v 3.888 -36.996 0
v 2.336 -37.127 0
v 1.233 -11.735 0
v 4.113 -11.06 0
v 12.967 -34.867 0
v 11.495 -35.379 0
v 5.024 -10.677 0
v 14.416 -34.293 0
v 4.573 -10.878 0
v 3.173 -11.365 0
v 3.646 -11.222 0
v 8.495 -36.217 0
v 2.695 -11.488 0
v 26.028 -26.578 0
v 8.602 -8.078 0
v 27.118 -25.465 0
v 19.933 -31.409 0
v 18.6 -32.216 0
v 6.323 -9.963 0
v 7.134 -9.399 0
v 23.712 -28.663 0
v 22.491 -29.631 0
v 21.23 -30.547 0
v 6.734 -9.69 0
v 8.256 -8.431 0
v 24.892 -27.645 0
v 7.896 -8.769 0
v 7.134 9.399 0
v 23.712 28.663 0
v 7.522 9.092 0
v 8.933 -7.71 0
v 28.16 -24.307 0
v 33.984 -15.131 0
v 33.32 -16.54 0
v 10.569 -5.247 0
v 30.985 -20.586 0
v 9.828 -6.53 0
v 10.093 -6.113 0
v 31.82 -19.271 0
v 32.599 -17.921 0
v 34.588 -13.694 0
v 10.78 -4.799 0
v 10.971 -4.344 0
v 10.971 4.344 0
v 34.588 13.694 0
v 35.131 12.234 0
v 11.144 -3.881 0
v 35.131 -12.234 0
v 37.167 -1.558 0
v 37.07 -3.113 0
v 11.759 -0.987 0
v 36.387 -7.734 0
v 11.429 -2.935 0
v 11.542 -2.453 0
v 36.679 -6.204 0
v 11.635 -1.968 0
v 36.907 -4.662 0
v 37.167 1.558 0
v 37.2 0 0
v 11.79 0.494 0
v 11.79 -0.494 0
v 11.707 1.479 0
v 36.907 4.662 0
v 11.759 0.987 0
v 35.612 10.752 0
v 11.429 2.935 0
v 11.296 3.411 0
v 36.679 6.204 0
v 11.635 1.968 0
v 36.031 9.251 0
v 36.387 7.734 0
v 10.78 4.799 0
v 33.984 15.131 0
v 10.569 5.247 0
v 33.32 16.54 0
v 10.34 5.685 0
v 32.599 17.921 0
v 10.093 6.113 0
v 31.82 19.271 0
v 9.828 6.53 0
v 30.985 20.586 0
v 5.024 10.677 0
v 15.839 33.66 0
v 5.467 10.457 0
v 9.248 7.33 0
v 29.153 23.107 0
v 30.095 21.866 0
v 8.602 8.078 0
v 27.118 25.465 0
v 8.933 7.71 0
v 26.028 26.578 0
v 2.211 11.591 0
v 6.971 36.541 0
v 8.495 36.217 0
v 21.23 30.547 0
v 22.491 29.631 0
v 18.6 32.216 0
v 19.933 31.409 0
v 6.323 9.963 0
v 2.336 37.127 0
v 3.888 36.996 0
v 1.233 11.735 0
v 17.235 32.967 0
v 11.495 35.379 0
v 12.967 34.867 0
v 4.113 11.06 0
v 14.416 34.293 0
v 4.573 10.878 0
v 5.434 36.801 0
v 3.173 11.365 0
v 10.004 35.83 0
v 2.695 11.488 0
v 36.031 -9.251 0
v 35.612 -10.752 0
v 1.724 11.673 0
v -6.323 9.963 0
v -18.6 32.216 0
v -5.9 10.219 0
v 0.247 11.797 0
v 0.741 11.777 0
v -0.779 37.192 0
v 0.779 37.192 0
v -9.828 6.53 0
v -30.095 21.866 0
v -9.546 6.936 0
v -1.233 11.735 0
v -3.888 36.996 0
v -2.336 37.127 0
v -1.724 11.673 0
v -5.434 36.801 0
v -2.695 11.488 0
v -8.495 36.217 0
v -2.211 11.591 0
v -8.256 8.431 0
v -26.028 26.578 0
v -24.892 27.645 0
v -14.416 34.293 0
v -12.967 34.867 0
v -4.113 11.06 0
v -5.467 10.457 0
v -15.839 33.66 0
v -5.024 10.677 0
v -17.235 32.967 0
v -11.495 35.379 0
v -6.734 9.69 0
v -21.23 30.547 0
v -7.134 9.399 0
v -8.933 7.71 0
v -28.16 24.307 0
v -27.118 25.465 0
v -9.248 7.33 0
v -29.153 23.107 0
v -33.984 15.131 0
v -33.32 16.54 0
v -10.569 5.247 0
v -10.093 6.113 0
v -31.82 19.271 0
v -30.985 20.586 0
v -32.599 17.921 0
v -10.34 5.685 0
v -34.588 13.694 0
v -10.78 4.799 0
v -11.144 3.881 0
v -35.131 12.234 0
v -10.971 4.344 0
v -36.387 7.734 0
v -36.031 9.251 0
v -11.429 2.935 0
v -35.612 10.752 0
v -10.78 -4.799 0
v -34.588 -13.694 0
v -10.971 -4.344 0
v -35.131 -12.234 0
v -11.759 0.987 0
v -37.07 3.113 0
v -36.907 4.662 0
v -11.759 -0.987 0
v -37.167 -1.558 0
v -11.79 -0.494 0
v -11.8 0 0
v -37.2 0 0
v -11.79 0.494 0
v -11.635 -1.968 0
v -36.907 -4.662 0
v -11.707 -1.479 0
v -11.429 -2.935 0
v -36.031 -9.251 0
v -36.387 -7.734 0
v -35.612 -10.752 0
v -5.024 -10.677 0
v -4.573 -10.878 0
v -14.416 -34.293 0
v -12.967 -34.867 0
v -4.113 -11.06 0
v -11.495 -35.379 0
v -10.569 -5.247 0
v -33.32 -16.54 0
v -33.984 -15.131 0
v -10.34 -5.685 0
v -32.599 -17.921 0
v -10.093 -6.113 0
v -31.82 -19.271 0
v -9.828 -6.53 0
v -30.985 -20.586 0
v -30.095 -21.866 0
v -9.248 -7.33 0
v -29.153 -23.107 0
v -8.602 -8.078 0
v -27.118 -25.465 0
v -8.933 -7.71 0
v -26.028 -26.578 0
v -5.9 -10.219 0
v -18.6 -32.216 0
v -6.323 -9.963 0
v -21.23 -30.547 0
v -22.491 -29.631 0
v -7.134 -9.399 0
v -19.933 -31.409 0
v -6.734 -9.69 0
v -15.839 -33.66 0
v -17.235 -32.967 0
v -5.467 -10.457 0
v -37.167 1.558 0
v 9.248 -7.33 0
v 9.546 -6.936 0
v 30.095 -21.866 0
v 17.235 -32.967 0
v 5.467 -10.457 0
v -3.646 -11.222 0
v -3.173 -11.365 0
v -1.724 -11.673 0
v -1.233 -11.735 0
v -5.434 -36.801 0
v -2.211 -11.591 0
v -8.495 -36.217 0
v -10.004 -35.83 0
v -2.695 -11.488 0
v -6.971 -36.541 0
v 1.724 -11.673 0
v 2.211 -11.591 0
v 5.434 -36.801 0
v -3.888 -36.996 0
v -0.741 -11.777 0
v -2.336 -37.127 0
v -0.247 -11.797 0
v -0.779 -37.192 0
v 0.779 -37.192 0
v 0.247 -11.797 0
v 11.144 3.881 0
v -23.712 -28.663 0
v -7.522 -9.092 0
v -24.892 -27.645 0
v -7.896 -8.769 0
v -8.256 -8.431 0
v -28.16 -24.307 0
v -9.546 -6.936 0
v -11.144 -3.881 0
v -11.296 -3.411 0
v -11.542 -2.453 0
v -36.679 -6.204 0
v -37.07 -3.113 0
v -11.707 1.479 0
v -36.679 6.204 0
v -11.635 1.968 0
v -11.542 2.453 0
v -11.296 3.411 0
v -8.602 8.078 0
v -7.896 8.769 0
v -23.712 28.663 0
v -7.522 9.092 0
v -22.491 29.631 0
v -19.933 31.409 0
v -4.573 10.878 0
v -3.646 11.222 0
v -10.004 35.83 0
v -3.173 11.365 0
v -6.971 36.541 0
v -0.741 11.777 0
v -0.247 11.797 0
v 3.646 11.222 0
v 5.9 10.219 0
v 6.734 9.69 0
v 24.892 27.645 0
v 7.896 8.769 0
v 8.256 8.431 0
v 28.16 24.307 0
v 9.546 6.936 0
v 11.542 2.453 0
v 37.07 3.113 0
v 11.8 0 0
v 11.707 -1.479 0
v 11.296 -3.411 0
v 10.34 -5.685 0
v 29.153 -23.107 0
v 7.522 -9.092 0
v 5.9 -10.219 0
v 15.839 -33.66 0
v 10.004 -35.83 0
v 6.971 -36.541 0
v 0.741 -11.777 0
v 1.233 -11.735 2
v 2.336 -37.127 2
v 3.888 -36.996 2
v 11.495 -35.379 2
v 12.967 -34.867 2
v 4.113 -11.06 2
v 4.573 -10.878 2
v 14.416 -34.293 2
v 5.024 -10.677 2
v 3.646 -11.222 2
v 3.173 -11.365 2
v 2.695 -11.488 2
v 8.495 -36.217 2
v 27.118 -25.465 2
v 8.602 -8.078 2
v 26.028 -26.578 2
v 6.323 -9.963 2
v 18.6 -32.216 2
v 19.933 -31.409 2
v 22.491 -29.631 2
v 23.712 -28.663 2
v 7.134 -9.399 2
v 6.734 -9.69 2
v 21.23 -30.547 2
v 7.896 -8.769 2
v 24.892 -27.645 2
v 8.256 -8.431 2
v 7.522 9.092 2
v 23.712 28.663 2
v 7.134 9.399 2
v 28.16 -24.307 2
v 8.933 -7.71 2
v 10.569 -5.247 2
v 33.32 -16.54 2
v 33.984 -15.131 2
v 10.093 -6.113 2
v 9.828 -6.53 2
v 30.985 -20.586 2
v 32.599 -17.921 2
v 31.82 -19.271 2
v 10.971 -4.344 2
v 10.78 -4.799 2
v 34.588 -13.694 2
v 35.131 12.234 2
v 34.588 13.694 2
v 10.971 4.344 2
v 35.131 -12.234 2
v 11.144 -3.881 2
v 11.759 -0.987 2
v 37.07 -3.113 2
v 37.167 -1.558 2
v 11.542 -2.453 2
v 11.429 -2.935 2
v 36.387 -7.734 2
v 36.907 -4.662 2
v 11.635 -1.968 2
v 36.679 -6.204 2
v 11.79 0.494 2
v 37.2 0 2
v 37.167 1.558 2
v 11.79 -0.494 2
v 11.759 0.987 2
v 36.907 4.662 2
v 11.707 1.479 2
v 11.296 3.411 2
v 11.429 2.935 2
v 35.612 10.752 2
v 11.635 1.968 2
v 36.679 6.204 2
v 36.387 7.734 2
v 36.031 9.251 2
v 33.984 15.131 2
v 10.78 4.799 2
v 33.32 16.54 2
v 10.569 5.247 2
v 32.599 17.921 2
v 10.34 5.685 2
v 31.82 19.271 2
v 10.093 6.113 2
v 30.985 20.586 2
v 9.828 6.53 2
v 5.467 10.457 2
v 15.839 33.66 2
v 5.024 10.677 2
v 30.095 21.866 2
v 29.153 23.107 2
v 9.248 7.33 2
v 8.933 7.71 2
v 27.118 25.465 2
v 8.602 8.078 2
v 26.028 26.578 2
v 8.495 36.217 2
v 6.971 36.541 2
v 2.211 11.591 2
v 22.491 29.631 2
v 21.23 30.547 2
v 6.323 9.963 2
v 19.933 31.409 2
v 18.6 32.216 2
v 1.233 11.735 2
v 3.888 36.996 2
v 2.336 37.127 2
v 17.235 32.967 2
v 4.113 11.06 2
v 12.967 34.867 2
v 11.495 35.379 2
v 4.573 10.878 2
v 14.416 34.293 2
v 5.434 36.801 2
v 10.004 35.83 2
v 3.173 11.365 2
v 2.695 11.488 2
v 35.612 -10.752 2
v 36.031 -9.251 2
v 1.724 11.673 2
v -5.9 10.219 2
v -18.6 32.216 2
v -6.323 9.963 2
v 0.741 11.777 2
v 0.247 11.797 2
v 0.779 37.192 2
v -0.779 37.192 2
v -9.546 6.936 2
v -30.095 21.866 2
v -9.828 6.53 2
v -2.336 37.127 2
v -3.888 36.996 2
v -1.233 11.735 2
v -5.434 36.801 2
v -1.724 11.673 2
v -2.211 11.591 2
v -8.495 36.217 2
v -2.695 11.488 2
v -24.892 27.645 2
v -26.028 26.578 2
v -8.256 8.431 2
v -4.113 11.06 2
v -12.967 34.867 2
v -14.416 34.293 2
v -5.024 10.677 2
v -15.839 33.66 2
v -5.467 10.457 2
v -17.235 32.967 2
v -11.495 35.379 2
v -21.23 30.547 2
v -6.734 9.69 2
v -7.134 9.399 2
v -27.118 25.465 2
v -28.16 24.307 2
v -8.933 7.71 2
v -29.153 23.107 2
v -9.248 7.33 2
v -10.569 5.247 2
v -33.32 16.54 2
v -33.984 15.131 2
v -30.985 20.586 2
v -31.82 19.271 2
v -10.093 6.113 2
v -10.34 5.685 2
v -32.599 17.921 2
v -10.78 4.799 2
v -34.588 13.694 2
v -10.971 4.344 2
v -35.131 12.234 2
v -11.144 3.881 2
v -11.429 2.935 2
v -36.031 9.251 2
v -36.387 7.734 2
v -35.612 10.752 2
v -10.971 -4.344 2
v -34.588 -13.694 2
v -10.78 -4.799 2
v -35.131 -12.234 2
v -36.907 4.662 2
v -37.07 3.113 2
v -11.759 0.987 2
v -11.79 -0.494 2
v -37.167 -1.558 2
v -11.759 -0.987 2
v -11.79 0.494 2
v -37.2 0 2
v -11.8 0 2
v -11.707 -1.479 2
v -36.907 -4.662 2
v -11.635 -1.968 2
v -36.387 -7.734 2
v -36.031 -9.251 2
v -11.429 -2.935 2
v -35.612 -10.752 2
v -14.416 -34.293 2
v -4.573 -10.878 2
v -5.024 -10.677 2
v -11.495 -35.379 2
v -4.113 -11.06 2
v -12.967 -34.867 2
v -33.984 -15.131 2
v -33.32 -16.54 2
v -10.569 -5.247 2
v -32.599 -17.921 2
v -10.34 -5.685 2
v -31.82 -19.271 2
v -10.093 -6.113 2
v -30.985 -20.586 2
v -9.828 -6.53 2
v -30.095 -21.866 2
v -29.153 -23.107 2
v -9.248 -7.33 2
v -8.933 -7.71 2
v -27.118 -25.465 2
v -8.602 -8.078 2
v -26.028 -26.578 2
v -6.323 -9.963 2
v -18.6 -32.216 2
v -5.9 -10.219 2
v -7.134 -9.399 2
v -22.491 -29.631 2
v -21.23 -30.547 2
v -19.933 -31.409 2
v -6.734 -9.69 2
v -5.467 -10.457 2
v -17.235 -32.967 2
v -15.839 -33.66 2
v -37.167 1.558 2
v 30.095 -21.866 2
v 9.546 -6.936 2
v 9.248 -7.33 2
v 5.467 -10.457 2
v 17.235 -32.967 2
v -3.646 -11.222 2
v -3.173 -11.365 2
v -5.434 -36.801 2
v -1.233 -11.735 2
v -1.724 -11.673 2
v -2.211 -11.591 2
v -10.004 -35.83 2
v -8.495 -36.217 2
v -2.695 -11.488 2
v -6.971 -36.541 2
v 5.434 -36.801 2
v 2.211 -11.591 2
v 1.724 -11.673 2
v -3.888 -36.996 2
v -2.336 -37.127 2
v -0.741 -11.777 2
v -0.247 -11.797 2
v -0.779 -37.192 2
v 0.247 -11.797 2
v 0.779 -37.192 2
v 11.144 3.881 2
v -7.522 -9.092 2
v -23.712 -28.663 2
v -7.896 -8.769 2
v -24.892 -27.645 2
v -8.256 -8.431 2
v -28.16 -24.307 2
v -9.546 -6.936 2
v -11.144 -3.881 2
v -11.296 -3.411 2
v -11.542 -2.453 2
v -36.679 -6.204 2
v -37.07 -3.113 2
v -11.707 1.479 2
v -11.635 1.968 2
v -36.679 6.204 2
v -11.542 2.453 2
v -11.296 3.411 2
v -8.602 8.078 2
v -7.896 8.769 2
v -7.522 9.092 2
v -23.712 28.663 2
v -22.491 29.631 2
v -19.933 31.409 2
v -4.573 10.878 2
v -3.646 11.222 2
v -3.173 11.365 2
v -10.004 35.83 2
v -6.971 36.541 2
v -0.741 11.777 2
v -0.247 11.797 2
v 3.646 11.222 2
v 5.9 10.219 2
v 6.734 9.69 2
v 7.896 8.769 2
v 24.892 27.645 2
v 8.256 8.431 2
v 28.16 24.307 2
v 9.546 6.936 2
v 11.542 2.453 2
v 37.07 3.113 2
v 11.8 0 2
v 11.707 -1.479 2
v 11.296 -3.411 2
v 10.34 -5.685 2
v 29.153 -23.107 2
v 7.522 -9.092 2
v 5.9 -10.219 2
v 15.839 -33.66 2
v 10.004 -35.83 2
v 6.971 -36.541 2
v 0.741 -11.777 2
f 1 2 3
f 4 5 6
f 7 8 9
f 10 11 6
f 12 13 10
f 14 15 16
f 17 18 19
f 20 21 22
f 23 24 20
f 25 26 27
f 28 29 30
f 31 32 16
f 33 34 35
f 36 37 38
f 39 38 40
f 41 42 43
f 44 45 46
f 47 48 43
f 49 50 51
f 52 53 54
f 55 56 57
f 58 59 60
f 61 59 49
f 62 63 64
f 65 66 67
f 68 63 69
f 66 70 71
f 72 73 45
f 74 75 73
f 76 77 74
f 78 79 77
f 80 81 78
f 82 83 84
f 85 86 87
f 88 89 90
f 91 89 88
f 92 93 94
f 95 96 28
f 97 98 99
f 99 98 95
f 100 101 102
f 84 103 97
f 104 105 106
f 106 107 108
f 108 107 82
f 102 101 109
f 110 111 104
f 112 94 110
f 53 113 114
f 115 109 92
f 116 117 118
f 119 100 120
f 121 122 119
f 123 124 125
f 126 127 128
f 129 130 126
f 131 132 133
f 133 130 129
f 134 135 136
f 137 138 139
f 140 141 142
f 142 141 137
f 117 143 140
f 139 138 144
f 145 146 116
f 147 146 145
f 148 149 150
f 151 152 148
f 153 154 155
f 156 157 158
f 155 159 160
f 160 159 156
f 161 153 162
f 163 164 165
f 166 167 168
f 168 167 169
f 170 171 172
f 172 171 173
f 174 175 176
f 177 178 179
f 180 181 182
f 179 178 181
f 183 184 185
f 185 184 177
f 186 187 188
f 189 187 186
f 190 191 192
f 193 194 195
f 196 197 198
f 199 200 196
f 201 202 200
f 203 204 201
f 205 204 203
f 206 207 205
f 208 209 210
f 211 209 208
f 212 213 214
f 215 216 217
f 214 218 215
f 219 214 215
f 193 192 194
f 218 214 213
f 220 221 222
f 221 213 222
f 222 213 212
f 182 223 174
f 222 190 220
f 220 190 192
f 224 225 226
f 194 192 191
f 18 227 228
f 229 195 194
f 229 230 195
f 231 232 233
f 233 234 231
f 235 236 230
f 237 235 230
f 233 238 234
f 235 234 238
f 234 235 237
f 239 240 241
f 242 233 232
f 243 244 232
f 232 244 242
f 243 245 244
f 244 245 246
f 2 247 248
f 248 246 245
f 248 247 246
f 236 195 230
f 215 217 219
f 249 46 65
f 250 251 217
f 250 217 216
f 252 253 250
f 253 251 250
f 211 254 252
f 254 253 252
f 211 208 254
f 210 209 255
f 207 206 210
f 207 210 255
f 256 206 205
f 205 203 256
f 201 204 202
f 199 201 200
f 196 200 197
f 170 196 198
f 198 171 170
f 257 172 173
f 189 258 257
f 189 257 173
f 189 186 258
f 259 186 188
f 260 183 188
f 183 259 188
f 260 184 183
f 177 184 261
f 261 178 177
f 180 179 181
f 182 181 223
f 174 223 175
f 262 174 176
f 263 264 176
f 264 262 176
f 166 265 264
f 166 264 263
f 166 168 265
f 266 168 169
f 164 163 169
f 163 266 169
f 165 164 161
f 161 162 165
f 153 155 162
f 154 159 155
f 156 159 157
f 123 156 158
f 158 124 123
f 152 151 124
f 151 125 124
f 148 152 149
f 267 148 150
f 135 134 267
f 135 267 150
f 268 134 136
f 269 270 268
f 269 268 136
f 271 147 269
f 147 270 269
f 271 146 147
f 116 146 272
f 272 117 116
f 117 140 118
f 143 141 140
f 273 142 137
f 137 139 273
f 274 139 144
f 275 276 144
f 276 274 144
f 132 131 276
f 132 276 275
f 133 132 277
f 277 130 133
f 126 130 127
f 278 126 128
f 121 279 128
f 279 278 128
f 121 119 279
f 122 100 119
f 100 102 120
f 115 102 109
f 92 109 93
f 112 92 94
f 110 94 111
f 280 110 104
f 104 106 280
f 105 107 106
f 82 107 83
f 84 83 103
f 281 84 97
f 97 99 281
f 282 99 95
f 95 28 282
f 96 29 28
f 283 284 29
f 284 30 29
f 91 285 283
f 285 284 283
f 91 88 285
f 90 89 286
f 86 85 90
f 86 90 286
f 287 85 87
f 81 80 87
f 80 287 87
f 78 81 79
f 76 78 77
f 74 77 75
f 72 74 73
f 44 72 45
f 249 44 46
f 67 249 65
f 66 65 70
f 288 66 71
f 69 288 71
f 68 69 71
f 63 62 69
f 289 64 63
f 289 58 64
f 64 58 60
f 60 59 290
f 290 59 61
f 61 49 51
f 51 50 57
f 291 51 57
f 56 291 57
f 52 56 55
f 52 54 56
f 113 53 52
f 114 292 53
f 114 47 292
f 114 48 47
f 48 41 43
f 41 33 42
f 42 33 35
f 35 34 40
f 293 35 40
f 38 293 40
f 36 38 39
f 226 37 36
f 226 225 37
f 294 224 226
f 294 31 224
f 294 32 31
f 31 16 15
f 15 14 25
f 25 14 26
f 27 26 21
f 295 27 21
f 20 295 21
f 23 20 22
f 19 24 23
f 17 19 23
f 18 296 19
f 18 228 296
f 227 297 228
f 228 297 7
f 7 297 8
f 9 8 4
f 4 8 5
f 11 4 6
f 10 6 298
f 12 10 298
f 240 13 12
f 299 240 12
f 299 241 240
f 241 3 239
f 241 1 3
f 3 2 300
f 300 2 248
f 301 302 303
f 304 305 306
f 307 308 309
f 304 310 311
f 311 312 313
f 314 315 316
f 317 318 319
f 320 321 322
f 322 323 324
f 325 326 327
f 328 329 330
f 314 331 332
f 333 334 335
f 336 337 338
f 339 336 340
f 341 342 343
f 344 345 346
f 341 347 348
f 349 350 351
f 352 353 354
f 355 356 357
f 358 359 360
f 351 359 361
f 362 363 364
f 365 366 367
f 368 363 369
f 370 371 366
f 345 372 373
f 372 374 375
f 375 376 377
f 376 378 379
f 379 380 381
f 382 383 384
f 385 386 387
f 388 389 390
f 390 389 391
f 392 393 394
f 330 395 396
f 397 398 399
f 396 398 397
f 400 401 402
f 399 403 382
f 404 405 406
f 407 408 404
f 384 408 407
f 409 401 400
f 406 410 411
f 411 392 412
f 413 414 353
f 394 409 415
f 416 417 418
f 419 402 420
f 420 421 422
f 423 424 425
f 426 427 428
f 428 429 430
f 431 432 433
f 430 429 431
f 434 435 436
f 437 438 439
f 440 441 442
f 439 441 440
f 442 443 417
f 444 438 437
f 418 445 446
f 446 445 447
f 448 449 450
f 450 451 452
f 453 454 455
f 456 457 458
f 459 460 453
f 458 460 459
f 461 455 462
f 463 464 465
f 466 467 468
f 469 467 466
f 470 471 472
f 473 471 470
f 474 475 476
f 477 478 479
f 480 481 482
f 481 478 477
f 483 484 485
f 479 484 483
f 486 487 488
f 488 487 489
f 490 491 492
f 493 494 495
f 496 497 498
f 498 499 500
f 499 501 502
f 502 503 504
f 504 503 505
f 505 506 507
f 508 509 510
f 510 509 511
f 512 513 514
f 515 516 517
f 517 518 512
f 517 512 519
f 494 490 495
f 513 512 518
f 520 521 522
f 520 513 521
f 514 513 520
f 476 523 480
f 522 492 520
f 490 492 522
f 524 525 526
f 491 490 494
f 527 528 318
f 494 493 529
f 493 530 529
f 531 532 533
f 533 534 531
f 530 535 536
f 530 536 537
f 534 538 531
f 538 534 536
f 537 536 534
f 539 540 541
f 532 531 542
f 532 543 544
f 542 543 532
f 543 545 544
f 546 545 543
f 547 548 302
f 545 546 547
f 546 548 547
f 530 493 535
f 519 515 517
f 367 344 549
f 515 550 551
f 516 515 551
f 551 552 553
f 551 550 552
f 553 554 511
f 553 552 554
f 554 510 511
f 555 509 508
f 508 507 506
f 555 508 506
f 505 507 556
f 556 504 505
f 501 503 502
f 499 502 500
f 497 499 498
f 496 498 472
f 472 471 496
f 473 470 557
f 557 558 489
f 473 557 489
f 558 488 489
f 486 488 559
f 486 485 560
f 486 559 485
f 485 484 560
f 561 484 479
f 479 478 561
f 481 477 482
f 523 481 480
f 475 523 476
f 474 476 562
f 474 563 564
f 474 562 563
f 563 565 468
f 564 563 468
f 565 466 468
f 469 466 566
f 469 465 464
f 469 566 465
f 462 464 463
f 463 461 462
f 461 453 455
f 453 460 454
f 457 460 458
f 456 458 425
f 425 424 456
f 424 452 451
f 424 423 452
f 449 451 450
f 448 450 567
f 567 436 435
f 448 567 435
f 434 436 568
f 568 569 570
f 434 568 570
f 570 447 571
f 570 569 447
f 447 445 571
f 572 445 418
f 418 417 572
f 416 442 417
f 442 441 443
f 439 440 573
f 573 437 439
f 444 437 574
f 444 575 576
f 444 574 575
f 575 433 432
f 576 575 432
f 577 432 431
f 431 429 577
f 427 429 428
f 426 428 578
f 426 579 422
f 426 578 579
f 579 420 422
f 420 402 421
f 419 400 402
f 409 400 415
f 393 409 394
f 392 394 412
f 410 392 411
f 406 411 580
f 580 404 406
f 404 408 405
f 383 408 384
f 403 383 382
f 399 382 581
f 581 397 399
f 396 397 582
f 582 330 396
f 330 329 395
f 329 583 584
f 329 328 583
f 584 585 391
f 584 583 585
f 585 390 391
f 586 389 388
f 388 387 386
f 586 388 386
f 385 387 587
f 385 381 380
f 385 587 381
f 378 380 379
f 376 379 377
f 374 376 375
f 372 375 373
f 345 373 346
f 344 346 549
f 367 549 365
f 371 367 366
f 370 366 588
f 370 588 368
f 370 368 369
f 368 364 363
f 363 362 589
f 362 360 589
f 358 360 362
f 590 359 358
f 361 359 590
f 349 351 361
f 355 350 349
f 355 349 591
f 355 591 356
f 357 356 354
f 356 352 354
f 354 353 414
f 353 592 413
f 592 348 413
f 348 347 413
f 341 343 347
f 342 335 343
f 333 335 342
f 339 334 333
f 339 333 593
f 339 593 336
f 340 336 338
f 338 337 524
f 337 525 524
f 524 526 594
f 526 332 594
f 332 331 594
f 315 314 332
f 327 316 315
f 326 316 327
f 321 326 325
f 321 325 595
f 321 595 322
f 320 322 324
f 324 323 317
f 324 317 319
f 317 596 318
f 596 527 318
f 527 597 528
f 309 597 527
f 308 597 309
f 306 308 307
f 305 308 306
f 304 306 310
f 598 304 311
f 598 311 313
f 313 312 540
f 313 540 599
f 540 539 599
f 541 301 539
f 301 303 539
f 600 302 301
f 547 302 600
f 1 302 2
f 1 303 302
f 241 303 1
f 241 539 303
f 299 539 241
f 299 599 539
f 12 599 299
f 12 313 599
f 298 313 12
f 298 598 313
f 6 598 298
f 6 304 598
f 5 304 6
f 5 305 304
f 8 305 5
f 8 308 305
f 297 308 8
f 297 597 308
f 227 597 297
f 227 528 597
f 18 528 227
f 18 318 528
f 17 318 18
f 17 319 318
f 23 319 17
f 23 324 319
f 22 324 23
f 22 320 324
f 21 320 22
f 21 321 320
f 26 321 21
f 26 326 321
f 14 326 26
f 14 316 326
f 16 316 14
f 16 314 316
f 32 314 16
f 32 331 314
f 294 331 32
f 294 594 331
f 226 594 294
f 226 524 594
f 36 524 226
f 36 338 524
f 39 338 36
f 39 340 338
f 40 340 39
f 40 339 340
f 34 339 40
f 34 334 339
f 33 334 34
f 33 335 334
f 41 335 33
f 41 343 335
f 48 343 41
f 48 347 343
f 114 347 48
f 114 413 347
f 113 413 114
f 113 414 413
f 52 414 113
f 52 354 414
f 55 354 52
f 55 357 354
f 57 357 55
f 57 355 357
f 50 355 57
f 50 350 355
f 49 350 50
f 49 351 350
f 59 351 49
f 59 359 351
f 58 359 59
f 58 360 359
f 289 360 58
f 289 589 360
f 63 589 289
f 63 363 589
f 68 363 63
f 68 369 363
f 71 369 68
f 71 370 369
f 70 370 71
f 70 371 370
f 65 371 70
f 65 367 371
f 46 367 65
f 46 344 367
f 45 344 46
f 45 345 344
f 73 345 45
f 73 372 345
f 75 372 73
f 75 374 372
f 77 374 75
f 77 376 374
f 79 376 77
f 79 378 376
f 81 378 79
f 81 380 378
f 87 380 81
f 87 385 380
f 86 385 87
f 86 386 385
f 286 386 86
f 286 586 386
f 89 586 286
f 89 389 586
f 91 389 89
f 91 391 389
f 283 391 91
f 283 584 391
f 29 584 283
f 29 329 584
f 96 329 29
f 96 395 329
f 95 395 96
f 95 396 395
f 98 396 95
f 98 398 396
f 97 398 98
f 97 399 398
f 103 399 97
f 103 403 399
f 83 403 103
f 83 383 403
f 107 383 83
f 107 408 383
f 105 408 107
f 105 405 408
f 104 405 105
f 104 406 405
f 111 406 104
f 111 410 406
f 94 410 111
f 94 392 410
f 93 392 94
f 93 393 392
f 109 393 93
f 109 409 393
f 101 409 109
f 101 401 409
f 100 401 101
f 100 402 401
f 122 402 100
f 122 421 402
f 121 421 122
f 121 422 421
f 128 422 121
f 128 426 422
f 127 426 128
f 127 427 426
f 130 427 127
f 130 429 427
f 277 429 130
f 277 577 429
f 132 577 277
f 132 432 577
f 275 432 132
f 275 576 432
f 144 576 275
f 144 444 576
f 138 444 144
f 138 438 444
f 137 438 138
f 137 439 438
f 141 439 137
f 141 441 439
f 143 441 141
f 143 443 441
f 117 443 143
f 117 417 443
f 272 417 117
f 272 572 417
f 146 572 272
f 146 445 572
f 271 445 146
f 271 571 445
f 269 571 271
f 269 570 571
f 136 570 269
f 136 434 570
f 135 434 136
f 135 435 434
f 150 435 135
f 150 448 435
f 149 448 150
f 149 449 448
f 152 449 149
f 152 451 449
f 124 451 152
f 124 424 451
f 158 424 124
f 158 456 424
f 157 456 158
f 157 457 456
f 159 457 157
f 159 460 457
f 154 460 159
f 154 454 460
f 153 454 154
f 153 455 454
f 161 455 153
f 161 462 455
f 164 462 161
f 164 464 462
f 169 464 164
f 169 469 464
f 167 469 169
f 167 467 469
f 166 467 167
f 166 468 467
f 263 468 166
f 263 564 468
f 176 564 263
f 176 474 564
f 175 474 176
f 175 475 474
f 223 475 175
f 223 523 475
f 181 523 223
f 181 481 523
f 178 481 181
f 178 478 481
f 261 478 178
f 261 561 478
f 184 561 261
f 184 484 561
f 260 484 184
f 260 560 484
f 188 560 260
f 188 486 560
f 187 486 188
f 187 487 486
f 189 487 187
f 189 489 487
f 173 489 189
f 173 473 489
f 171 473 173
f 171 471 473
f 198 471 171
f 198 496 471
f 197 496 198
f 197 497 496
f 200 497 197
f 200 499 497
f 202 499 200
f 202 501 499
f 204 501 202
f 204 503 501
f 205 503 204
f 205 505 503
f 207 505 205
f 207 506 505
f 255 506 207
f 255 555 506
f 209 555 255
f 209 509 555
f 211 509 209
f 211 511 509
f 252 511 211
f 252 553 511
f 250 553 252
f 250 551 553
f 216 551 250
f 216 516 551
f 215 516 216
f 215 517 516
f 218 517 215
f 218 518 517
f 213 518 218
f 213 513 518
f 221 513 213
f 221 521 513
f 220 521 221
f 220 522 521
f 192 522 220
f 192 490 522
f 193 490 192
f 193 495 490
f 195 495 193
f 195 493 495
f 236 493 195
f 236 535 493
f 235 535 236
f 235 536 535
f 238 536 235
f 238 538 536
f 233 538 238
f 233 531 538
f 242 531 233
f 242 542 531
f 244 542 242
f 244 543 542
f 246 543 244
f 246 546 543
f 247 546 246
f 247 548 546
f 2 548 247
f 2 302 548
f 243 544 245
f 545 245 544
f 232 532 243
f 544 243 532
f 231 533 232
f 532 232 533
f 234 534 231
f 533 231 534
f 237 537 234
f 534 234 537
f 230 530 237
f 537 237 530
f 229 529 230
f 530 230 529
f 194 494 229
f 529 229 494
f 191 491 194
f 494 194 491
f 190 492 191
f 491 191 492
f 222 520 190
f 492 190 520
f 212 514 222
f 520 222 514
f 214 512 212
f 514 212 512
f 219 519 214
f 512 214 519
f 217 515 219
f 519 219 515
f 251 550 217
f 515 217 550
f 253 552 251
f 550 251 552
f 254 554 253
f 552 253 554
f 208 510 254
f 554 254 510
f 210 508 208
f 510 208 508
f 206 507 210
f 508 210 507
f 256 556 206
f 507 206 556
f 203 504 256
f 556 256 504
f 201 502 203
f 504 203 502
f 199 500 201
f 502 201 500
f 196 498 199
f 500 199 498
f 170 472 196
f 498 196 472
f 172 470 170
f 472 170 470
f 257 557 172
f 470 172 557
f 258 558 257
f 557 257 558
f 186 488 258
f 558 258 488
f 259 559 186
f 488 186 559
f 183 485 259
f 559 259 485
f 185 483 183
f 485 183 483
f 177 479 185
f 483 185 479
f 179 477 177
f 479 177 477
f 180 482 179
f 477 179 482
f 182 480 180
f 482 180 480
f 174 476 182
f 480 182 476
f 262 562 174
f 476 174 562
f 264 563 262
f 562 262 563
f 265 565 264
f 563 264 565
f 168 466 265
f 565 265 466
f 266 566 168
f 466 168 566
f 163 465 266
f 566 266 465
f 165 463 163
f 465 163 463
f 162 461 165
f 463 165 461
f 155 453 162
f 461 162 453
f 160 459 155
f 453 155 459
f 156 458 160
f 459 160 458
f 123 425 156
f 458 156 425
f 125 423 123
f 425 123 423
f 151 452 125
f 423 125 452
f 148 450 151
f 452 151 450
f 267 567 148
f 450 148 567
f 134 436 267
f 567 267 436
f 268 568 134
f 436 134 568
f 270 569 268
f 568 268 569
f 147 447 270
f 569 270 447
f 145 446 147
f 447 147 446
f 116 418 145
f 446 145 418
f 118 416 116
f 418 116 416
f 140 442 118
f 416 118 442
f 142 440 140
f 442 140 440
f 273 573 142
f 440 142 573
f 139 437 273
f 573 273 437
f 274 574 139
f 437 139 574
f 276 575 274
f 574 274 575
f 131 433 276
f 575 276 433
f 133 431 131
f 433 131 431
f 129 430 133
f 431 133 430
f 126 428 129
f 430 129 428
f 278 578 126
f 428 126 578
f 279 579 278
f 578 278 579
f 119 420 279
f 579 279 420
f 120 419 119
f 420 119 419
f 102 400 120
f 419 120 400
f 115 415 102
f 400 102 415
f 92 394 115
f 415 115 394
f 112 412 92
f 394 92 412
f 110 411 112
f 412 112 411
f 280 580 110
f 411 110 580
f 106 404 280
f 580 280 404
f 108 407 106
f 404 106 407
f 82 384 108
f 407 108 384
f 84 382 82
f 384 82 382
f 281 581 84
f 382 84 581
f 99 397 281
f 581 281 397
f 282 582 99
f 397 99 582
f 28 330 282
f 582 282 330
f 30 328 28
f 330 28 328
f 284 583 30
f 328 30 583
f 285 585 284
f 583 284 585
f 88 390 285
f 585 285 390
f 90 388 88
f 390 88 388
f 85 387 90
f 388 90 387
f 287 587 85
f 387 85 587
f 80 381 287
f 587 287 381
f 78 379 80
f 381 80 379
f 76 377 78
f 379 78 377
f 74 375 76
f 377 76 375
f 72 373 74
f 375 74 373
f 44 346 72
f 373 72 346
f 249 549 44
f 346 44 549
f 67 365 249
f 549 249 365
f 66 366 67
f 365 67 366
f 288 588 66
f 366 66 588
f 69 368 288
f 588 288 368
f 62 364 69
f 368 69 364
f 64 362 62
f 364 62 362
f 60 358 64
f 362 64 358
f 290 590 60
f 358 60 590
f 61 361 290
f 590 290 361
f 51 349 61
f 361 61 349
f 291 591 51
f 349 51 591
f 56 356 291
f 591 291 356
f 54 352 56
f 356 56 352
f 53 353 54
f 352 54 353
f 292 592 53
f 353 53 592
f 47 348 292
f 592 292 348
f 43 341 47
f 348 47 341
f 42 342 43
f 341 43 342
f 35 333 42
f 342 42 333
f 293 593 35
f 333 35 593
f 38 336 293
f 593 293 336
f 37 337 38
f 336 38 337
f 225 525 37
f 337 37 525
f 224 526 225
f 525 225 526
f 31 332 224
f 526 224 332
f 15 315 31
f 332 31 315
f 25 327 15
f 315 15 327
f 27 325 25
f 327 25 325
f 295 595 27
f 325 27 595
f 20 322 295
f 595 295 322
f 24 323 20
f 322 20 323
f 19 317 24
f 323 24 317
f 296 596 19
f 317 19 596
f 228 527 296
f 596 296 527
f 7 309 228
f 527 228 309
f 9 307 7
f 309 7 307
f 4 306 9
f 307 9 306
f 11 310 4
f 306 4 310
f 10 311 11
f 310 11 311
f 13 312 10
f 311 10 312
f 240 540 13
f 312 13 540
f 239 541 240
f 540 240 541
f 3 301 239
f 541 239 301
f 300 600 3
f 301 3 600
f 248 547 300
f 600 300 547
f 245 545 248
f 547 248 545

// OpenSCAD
$fn = 150;
d = 23.6;
//D = d+2*1.2;
D= 74.4;

linear_extrude(2){
  difference(){
    circle(d=D);
    circle(d=d);
  }
}
